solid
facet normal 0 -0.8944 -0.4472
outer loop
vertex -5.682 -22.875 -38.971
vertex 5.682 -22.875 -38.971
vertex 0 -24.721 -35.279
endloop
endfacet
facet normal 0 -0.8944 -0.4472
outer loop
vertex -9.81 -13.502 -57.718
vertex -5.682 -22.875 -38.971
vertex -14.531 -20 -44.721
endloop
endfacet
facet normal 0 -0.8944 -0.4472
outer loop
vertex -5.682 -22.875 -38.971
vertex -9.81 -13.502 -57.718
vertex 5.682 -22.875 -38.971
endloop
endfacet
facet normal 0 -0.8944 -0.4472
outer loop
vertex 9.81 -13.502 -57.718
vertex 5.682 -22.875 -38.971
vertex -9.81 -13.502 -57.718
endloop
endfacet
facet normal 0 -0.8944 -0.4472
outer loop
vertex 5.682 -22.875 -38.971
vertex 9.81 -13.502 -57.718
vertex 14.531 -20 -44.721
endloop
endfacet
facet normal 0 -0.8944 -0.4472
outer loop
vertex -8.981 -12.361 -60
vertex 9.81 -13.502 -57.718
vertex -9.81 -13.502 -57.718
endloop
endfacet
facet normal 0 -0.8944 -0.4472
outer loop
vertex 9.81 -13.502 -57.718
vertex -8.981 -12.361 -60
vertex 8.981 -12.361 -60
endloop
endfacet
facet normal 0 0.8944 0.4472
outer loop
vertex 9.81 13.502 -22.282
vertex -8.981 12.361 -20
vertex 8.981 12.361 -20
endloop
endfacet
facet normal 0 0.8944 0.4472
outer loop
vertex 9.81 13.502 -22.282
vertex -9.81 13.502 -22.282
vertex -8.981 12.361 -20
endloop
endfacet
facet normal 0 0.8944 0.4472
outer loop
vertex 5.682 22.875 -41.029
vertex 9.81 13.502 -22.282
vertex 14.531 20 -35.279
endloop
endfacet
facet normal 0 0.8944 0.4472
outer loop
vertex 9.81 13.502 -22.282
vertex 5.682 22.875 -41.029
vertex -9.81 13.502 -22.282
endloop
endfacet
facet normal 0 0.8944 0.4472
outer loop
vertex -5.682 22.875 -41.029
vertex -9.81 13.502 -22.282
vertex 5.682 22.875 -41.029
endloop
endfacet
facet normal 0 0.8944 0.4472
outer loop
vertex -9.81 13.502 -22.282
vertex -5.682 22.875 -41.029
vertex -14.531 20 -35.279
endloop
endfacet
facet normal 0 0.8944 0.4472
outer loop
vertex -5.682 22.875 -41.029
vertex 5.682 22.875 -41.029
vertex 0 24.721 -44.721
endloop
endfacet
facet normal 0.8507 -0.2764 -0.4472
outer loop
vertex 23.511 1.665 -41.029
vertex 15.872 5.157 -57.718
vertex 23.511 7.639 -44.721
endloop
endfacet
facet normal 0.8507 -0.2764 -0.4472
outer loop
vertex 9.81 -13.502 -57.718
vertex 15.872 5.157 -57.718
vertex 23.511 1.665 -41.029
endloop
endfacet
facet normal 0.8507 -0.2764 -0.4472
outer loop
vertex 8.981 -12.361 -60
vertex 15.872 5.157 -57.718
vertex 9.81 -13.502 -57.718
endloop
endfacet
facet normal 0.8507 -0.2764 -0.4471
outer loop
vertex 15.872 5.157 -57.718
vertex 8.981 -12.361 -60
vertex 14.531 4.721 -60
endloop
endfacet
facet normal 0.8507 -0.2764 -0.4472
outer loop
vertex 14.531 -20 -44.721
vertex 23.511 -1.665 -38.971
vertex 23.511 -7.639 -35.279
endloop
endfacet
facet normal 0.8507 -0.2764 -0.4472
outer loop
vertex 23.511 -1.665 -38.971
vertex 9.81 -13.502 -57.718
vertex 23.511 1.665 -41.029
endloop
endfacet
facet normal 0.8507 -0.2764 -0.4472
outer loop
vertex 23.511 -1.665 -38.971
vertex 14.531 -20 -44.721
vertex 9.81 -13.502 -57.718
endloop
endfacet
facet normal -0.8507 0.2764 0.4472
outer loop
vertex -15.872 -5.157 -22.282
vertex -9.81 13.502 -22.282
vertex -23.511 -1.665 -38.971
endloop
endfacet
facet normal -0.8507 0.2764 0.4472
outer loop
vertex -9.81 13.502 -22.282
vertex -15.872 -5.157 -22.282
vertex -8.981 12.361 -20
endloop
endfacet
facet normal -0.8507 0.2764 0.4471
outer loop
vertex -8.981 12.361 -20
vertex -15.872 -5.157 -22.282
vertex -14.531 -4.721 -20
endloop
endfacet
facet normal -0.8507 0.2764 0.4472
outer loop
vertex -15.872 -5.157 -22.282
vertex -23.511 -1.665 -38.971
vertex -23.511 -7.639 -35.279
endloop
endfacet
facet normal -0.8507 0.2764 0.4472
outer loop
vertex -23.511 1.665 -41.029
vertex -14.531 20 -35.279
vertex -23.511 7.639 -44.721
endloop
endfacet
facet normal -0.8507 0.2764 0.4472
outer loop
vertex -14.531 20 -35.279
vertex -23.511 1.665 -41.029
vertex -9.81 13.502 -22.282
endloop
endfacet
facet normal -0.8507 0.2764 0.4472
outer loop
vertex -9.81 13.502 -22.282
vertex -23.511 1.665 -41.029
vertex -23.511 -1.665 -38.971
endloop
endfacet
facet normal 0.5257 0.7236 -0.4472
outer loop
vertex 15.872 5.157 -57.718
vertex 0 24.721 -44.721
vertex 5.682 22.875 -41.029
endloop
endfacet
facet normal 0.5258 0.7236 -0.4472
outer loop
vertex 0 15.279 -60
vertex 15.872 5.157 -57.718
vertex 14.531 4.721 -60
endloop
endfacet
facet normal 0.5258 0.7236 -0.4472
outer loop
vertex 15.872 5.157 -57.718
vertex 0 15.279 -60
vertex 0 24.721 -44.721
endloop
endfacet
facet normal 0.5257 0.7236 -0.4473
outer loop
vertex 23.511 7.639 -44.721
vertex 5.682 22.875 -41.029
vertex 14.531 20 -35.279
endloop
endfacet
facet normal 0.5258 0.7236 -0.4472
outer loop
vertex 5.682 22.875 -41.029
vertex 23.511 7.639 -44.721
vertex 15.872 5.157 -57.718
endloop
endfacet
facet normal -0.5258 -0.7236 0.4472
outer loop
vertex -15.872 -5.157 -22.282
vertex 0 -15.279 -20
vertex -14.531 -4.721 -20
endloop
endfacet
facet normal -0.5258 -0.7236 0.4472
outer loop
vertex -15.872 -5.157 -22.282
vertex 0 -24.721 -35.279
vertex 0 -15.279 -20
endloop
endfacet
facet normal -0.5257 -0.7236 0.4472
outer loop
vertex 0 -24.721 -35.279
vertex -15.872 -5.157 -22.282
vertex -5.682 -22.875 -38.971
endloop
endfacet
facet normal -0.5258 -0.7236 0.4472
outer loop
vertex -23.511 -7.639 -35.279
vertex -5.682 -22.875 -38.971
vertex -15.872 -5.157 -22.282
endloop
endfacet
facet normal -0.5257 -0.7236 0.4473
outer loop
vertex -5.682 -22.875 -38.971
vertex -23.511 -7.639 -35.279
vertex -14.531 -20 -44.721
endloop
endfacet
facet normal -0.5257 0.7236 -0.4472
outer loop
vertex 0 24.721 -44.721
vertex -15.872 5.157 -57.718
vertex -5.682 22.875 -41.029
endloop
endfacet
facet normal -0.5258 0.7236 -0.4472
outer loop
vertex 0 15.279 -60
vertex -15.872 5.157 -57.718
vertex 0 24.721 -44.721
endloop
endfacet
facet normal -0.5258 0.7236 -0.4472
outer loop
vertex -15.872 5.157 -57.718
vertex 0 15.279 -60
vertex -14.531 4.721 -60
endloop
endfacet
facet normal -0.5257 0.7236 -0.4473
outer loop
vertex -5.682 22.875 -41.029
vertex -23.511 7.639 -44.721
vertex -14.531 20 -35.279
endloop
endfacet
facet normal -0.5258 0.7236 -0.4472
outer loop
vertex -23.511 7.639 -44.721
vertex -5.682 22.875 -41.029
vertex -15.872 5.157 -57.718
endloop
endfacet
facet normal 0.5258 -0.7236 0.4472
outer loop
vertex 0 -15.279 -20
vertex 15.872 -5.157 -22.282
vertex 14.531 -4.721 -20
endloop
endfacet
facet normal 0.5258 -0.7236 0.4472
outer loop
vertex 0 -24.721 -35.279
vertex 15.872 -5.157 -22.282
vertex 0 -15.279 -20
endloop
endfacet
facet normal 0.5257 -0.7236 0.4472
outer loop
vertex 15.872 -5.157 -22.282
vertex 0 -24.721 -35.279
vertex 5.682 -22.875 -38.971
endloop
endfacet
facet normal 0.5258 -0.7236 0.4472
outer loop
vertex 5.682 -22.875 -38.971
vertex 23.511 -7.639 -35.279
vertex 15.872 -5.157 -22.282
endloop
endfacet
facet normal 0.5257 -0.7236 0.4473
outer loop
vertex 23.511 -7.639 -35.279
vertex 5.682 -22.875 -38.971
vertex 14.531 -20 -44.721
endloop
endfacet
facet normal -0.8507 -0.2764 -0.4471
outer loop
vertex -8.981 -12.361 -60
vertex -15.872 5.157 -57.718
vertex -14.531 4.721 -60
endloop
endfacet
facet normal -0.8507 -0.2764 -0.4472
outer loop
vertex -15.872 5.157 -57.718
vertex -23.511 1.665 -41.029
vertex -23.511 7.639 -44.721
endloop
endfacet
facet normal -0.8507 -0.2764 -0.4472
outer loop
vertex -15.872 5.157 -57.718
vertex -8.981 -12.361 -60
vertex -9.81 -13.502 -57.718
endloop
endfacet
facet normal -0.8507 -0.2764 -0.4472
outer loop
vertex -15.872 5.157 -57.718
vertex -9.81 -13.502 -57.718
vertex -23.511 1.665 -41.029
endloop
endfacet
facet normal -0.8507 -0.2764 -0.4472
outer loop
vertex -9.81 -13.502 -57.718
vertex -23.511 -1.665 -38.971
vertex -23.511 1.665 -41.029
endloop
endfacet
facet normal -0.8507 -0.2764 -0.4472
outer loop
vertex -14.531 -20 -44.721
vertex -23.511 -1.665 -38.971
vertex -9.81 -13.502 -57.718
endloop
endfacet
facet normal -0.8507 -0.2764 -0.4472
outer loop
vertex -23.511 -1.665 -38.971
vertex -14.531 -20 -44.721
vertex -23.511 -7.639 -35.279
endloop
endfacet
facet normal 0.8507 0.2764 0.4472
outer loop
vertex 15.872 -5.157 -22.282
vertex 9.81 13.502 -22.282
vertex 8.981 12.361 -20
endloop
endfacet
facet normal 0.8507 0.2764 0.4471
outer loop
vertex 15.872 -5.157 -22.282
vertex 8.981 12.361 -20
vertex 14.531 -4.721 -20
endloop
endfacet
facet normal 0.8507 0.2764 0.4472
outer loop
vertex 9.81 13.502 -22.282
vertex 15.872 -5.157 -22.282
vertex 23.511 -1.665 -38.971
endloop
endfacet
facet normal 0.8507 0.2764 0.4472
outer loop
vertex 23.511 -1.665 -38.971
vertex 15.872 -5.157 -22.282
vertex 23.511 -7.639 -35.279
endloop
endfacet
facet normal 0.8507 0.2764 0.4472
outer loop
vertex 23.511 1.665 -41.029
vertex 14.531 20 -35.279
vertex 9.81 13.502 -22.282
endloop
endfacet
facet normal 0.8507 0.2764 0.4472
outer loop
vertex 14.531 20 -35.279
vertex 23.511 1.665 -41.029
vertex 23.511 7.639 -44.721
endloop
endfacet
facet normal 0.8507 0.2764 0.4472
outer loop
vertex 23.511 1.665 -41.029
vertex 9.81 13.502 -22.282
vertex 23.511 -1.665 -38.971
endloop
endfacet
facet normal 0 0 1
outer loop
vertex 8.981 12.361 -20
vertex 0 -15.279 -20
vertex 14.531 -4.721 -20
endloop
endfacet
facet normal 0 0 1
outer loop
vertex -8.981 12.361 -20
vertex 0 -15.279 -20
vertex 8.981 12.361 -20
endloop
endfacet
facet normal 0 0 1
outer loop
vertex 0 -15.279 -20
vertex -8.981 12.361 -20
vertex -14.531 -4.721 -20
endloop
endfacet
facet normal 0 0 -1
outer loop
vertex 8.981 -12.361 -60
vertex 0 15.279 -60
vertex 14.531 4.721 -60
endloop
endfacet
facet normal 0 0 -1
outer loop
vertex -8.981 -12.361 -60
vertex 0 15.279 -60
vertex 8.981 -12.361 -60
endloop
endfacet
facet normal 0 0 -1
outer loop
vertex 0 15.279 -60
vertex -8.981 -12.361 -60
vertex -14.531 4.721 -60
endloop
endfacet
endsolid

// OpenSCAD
//create a dodecahedron by intersecting 6 boxes
module dodecahedron(height)
{
  scale([height,height,height]) //scale by height parameter
  {
    intersection(){
      //make a cube
      cube([2,2,1], center = true);
      intersection_for(i=[0:4]) //loop i from 0 to 4, and intersect results
      {
        //make a cube, rotate it 116.565 degrees around the X axis,
        //then 72*i around the Z axis
        rotate([0,0,72*i])
          rotate([116.565,0,0])
          cube([2,2,1], center = true);
      }
    }
  }
}
//create 3 stacked dodecahedra
//call the module with a height of 1 and move up 2
// translate([0,0,2]) dodecahedron(1);
//call the module with a height of 2
// dodecahedron(2);
//call the module with a height of 4 and move down 4
translate([0,0,-40])dodecahedron(40);
